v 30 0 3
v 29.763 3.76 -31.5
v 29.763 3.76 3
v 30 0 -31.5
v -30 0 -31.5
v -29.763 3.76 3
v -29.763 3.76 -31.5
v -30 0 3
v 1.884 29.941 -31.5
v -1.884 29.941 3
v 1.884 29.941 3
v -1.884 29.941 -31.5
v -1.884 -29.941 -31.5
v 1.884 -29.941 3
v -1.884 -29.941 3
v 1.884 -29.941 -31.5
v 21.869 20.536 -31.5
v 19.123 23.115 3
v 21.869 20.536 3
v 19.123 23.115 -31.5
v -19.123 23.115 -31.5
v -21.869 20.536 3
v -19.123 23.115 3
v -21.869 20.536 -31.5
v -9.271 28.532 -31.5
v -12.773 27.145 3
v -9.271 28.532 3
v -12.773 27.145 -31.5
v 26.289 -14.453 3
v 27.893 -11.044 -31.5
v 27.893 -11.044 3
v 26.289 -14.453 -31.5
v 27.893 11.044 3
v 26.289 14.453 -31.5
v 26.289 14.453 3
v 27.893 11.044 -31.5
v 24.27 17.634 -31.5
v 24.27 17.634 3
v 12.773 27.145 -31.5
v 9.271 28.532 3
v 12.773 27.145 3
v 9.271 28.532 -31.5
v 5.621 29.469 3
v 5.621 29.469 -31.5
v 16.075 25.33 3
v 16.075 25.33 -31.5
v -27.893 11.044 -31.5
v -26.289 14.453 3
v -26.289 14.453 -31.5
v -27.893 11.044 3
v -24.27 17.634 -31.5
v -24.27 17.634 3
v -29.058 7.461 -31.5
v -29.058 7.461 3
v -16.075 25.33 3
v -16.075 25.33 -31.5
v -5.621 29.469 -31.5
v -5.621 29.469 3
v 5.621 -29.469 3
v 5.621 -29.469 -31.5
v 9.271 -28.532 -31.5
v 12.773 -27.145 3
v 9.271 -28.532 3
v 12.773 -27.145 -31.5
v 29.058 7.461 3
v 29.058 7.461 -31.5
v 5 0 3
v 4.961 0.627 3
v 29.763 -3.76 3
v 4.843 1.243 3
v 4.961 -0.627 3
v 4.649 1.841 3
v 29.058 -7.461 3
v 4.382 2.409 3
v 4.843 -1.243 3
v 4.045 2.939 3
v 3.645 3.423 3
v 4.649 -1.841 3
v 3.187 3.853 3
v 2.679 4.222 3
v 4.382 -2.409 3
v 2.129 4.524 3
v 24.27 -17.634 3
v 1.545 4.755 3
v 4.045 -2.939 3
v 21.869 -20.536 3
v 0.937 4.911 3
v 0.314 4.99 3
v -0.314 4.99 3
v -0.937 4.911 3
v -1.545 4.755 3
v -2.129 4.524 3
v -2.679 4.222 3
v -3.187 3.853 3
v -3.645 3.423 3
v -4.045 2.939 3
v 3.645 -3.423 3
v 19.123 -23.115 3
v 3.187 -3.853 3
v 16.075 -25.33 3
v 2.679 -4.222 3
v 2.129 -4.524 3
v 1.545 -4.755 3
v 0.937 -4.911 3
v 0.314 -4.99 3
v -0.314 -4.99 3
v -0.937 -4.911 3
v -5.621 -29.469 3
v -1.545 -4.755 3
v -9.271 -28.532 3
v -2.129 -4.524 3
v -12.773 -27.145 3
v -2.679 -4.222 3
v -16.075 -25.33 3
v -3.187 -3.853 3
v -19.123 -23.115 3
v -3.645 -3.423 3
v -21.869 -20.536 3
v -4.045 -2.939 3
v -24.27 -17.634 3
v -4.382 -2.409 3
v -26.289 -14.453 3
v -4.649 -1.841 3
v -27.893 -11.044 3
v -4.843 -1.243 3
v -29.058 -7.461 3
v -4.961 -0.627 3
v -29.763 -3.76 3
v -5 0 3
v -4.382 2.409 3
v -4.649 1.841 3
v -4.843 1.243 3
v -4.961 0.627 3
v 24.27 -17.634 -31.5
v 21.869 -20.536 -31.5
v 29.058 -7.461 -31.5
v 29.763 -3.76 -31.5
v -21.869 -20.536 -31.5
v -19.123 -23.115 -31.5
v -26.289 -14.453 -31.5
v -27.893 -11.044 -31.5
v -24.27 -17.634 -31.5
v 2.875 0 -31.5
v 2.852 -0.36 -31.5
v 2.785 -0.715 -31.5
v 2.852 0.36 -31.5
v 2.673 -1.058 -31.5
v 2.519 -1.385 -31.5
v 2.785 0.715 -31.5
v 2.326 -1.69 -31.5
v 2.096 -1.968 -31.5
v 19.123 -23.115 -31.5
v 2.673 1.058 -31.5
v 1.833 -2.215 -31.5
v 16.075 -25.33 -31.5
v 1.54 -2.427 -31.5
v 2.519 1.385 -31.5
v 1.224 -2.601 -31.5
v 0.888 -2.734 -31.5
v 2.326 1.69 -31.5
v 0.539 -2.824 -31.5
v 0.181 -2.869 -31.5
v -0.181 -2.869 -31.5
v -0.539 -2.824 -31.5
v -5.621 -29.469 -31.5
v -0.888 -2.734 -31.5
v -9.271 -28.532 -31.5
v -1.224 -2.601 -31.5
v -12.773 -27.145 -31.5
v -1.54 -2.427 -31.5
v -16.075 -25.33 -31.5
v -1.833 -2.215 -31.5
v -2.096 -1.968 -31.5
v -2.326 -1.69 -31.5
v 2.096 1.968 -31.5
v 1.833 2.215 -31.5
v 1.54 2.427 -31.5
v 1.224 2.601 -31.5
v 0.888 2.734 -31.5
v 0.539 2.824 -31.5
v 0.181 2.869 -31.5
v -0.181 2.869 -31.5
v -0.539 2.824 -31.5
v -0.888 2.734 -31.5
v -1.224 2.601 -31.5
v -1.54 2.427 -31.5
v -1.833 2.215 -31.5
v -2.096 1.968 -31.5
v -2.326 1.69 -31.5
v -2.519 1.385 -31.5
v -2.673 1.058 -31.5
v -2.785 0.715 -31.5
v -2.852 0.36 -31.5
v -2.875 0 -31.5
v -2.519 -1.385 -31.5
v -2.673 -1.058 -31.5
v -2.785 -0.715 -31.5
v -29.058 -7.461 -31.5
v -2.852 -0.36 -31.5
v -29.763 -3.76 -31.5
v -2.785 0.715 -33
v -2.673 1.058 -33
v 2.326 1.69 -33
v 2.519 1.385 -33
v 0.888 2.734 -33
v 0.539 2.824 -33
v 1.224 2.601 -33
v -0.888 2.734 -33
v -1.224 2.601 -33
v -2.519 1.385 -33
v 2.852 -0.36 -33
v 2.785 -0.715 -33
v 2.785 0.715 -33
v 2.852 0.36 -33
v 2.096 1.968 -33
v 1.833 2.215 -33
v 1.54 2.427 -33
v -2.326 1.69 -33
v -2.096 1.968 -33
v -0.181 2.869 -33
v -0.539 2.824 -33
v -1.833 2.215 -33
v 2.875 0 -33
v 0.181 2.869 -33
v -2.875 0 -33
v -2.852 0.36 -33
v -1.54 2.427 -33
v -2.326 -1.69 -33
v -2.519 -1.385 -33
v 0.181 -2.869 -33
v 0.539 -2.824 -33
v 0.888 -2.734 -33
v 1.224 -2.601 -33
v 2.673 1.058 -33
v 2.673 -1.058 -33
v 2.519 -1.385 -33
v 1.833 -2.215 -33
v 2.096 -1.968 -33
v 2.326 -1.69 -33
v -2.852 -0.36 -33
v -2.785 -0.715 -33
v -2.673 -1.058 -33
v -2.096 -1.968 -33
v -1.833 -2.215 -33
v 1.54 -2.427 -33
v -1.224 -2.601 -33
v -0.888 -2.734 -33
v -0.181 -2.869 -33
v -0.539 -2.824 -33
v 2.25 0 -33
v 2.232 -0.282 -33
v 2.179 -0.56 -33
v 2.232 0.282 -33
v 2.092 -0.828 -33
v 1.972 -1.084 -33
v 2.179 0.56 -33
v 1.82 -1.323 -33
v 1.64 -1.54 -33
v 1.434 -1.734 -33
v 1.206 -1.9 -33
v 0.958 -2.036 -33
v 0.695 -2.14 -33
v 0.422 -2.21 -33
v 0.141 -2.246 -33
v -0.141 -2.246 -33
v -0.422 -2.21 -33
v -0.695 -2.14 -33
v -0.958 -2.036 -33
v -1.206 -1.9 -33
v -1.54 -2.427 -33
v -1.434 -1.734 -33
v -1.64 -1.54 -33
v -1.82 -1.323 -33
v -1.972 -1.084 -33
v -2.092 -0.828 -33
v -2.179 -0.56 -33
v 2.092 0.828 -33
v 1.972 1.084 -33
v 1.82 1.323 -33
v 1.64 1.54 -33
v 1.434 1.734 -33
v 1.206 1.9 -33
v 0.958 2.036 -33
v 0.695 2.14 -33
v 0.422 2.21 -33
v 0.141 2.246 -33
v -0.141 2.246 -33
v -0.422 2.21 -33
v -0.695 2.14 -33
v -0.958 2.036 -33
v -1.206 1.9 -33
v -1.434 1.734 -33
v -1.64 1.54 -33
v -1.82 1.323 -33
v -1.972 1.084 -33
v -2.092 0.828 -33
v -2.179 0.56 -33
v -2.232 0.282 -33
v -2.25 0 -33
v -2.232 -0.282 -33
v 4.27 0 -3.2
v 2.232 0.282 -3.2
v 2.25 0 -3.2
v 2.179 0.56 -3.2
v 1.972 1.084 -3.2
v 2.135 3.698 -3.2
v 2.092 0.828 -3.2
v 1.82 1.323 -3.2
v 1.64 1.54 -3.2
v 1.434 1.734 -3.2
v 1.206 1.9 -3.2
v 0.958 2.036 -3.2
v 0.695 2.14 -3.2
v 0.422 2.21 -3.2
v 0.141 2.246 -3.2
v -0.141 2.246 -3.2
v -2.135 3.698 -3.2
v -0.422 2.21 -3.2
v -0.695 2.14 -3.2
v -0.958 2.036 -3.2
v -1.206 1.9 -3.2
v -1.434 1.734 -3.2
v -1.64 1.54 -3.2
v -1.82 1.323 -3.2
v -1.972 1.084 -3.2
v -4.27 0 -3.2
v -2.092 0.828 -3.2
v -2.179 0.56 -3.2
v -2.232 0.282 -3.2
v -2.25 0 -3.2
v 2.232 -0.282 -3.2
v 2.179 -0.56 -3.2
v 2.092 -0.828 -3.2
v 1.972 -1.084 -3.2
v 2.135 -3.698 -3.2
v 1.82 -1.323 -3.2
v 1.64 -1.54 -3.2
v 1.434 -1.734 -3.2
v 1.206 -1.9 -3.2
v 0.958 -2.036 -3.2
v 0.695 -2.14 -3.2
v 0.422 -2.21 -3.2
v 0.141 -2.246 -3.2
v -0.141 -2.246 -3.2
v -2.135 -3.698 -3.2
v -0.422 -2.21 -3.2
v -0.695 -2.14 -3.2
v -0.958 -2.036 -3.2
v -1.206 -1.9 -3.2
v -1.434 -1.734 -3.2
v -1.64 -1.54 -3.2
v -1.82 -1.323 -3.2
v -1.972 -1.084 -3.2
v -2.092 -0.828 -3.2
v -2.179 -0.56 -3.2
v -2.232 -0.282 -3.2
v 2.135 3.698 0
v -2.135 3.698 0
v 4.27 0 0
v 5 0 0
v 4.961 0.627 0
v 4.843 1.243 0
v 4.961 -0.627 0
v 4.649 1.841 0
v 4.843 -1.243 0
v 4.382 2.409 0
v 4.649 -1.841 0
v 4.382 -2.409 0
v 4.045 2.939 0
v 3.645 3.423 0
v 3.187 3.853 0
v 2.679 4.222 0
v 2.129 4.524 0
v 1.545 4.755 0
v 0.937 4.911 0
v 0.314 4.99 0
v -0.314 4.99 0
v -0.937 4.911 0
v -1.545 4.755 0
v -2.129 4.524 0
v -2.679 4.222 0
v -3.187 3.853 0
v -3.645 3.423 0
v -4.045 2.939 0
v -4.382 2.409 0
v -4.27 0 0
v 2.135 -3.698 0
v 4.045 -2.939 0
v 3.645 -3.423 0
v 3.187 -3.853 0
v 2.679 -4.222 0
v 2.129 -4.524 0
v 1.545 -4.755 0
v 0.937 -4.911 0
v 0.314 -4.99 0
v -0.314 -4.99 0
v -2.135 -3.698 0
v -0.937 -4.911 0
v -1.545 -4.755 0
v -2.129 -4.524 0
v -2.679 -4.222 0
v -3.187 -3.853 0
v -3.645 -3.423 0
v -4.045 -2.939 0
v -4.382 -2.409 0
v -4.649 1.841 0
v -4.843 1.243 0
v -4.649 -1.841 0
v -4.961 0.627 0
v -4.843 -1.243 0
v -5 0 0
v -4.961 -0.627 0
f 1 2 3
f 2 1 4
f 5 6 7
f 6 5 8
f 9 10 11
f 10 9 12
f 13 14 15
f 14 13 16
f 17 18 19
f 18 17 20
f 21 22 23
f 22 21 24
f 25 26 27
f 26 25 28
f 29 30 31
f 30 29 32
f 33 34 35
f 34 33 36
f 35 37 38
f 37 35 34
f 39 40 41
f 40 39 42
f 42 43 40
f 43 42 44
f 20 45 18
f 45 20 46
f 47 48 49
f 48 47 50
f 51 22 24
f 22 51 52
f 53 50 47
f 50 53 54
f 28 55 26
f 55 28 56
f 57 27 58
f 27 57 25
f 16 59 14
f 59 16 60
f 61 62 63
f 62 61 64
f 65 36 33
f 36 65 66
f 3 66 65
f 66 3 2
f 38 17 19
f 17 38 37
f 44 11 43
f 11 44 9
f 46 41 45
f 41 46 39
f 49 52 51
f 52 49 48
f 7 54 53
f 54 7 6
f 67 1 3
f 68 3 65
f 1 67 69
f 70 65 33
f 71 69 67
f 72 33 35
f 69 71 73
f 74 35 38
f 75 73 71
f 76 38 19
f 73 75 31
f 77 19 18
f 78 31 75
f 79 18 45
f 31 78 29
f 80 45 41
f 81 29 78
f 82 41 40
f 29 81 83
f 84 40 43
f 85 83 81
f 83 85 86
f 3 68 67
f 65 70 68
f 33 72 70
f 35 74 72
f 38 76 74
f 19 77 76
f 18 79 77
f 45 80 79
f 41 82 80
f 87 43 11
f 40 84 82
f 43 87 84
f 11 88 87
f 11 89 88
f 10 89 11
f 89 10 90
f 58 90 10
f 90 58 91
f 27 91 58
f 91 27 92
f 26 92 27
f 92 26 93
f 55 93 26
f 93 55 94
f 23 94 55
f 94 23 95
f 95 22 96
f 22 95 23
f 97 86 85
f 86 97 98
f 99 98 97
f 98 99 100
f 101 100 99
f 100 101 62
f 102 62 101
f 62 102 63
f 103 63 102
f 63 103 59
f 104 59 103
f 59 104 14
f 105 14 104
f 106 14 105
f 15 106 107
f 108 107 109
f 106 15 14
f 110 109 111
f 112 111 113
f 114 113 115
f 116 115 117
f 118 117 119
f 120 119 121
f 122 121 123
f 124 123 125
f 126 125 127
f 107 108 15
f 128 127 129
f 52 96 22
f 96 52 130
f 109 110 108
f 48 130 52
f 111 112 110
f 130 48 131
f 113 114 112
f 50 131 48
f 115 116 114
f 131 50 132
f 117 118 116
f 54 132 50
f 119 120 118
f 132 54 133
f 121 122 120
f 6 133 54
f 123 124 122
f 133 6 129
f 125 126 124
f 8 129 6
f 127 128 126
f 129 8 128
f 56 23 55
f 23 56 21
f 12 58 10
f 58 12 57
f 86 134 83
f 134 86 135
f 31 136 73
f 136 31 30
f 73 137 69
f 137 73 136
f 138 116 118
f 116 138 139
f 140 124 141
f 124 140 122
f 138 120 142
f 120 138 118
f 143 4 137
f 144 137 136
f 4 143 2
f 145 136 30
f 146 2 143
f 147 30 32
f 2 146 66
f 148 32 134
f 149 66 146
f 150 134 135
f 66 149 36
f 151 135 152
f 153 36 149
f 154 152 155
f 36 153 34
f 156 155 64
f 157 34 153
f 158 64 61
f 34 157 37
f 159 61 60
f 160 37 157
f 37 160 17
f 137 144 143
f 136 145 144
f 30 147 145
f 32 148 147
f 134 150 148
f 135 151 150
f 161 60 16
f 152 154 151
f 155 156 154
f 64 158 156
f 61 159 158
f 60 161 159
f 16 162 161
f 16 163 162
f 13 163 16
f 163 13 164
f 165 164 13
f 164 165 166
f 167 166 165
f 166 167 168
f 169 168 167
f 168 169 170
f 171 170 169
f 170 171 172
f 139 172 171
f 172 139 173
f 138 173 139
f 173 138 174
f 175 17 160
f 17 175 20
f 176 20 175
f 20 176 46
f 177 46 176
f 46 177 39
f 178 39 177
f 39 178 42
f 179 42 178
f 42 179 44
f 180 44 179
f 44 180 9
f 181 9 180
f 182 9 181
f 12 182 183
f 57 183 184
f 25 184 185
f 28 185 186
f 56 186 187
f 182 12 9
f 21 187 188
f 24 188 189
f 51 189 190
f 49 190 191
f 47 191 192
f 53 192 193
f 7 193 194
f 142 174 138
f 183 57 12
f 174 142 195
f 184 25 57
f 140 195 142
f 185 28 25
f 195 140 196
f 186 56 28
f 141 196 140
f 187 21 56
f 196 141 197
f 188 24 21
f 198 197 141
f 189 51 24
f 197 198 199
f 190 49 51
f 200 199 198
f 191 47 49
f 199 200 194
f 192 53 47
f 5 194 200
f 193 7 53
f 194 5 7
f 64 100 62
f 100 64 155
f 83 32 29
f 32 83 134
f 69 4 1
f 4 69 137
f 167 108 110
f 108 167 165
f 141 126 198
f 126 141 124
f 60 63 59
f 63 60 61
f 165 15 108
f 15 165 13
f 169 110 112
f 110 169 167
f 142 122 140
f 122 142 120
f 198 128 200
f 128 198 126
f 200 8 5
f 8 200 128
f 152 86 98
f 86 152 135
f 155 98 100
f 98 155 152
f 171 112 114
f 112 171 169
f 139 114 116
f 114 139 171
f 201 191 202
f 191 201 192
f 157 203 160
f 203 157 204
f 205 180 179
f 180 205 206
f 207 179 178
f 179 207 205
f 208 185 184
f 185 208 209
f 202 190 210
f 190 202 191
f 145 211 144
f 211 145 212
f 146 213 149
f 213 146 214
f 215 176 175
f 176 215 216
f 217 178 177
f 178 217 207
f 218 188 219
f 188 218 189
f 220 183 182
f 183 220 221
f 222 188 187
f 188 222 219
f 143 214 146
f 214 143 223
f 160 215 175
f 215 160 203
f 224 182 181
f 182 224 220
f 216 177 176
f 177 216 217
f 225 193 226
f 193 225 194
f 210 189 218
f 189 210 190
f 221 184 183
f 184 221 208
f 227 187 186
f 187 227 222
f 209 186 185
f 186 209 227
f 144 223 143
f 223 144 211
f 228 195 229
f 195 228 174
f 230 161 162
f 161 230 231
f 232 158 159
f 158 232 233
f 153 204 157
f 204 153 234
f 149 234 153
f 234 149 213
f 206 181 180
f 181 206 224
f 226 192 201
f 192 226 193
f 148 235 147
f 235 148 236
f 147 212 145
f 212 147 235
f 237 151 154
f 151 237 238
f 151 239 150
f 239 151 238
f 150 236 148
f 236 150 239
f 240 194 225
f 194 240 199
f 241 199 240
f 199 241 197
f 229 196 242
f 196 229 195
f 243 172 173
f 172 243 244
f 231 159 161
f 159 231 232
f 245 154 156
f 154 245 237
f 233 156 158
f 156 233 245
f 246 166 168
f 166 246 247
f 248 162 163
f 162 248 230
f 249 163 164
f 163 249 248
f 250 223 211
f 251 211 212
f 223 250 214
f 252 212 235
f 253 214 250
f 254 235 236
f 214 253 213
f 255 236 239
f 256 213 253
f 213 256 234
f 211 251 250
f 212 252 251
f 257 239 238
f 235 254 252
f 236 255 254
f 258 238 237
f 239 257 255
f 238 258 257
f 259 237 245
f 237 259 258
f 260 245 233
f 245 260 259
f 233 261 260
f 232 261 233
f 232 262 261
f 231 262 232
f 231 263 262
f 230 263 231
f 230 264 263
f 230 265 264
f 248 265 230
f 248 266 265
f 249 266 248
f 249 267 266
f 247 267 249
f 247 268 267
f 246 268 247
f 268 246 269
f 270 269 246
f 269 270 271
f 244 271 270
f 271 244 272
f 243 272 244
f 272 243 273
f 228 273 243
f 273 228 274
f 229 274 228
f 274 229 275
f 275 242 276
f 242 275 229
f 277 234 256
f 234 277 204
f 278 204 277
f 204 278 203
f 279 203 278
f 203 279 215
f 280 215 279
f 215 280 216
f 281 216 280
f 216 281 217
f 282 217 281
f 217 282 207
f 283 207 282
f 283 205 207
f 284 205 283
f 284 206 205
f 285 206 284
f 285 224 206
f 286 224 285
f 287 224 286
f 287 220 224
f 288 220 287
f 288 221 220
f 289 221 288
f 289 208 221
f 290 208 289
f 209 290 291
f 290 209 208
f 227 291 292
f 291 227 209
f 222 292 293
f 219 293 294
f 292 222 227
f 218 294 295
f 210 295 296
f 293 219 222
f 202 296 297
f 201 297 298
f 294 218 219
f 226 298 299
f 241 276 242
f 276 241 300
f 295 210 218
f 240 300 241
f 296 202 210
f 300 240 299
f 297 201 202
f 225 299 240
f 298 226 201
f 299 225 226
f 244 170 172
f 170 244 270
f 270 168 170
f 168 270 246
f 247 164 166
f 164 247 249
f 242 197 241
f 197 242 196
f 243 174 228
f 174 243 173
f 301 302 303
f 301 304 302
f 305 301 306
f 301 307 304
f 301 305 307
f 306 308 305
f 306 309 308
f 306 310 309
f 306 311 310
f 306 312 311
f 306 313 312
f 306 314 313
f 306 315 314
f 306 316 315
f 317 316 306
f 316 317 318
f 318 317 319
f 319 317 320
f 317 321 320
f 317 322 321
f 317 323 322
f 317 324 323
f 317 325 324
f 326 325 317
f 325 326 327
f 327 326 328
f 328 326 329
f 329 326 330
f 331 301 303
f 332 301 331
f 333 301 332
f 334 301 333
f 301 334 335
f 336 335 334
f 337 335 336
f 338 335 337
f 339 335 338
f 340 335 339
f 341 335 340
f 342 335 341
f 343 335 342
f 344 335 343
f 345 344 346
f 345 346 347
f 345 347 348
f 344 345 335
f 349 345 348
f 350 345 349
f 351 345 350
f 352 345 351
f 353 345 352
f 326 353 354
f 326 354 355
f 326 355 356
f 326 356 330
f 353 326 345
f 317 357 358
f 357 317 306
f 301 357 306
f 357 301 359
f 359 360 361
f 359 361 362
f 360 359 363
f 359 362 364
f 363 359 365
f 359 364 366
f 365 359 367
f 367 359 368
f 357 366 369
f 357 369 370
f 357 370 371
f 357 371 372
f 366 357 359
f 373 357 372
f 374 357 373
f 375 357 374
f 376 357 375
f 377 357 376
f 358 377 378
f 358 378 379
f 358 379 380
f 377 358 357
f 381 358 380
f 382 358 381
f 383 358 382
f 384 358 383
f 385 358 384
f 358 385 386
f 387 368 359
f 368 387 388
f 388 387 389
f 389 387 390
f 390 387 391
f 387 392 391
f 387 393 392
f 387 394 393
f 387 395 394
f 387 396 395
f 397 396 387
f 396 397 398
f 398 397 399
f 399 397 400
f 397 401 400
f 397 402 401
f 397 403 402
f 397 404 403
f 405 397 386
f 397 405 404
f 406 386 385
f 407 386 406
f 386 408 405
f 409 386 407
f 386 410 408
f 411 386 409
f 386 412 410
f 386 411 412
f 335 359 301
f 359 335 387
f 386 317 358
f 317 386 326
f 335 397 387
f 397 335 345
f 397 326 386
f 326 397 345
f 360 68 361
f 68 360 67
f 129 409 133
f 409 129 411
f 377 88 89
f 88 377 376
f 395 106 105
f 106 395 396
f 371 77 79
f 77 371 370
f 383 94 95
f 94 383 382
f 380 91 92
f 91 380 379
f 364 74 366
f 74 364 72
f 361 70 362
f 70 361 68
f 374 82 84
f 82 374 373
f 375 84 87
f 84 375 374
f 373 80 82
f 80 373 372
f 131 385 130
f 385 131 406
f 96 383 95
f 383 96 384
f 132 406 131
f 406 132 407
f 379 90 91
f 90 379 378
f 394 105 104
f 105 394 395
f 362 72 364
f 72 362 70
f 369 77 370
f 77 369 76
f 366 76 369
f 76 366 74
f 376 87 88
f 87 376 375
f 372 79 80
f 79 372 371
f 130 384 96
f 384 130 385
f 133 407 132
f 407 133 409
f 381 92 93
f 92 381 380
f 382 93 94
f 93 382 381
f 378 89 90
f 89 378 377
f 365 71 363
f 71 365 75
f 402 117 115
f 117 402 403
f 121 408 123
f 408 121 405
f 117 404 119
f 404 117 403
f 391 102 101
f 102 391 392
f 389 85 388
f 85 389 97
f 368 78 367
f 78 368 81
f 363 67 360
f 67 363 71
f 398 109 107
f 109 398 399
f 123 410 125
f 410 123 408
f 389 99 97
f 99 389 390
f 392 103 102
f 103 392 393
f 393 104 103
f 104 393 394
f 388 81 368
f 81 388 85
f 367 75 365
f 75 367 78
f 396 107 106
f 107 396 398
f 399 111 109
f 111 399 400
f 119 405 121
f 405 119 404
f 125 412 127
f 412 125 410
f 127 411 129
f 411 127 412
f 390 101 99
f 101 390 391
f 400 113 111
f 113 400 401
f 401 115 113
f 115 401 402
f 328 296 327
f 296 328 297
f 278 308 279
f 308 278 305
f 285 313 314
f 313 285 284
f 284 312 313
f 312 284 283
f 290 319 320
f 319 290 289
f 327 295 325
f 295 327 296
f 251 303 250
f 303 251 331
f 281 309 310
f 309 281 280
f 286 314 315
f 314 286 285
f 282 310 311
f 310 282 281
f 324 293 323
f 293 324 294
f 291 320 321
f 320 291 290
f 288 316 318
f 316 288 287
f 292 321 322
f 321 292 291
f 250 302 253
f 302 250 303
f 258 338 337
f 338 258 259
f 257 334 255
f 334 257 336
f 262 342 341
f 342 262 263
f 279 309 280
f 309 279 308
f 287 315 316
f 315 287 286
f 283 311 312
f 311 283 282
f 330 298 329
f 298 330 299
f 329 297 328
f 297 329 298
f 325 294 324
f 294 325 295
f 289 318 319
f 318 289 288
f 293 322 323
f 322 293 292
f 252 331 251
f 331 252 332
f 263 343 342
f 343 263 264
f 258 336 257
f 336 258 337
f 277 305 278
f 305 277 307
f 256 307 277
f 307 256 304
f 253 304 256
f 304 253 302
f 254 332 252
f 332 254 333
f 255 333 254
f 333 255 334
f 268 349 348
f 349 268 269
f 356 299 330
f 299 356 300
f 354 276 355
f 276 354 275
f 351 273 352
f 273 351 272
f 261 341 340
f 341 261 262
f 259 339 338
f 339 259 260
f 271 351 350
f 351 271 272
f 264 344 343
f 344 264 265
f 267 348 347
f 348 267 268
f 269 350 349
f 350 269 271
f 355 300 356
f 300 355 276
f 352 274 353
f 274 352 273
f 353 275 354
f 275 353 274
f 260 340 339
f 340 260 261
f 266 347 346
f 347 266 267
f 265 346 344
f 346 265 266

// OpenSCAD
$fn = 50;

difference() {
	union() {
		translate(v = [0, 0, -31.5]) {
			cylinder(h = 34.5, r = 30.0);
		}
		#translate(v = [0, 0, -33.0]) {
			cylinder(h = 33, r = 2.875);
		}
	}
	union() {
		translate(v = [0, 0, 0]) {
			rotate(a = [0, 0, 0]) {
				difference() {
					union() {
						translate(v = [0, 0, -3.2]) {
							linear_extrude(height = 3.2) {
								polygon(points = [[4.2698, 0.0], [2.1349000000000005, 3.697755269078796], [-2.134899999999999, 3.6977552690787965], [-4.2698, 5.228996902999369e-16], [-2.134900000000002, -3.6977552690787956], [2.1348999999999974, -3.697755269078798]]);
							}
						}
					}
					union();
				}
			}
		}
		#cylinder(h = 3, r = 5.0);
		#translate(v = [0, 0, -100.0]) {
			cylinder(h = 200, r = 2.25);
		}
	}
}
